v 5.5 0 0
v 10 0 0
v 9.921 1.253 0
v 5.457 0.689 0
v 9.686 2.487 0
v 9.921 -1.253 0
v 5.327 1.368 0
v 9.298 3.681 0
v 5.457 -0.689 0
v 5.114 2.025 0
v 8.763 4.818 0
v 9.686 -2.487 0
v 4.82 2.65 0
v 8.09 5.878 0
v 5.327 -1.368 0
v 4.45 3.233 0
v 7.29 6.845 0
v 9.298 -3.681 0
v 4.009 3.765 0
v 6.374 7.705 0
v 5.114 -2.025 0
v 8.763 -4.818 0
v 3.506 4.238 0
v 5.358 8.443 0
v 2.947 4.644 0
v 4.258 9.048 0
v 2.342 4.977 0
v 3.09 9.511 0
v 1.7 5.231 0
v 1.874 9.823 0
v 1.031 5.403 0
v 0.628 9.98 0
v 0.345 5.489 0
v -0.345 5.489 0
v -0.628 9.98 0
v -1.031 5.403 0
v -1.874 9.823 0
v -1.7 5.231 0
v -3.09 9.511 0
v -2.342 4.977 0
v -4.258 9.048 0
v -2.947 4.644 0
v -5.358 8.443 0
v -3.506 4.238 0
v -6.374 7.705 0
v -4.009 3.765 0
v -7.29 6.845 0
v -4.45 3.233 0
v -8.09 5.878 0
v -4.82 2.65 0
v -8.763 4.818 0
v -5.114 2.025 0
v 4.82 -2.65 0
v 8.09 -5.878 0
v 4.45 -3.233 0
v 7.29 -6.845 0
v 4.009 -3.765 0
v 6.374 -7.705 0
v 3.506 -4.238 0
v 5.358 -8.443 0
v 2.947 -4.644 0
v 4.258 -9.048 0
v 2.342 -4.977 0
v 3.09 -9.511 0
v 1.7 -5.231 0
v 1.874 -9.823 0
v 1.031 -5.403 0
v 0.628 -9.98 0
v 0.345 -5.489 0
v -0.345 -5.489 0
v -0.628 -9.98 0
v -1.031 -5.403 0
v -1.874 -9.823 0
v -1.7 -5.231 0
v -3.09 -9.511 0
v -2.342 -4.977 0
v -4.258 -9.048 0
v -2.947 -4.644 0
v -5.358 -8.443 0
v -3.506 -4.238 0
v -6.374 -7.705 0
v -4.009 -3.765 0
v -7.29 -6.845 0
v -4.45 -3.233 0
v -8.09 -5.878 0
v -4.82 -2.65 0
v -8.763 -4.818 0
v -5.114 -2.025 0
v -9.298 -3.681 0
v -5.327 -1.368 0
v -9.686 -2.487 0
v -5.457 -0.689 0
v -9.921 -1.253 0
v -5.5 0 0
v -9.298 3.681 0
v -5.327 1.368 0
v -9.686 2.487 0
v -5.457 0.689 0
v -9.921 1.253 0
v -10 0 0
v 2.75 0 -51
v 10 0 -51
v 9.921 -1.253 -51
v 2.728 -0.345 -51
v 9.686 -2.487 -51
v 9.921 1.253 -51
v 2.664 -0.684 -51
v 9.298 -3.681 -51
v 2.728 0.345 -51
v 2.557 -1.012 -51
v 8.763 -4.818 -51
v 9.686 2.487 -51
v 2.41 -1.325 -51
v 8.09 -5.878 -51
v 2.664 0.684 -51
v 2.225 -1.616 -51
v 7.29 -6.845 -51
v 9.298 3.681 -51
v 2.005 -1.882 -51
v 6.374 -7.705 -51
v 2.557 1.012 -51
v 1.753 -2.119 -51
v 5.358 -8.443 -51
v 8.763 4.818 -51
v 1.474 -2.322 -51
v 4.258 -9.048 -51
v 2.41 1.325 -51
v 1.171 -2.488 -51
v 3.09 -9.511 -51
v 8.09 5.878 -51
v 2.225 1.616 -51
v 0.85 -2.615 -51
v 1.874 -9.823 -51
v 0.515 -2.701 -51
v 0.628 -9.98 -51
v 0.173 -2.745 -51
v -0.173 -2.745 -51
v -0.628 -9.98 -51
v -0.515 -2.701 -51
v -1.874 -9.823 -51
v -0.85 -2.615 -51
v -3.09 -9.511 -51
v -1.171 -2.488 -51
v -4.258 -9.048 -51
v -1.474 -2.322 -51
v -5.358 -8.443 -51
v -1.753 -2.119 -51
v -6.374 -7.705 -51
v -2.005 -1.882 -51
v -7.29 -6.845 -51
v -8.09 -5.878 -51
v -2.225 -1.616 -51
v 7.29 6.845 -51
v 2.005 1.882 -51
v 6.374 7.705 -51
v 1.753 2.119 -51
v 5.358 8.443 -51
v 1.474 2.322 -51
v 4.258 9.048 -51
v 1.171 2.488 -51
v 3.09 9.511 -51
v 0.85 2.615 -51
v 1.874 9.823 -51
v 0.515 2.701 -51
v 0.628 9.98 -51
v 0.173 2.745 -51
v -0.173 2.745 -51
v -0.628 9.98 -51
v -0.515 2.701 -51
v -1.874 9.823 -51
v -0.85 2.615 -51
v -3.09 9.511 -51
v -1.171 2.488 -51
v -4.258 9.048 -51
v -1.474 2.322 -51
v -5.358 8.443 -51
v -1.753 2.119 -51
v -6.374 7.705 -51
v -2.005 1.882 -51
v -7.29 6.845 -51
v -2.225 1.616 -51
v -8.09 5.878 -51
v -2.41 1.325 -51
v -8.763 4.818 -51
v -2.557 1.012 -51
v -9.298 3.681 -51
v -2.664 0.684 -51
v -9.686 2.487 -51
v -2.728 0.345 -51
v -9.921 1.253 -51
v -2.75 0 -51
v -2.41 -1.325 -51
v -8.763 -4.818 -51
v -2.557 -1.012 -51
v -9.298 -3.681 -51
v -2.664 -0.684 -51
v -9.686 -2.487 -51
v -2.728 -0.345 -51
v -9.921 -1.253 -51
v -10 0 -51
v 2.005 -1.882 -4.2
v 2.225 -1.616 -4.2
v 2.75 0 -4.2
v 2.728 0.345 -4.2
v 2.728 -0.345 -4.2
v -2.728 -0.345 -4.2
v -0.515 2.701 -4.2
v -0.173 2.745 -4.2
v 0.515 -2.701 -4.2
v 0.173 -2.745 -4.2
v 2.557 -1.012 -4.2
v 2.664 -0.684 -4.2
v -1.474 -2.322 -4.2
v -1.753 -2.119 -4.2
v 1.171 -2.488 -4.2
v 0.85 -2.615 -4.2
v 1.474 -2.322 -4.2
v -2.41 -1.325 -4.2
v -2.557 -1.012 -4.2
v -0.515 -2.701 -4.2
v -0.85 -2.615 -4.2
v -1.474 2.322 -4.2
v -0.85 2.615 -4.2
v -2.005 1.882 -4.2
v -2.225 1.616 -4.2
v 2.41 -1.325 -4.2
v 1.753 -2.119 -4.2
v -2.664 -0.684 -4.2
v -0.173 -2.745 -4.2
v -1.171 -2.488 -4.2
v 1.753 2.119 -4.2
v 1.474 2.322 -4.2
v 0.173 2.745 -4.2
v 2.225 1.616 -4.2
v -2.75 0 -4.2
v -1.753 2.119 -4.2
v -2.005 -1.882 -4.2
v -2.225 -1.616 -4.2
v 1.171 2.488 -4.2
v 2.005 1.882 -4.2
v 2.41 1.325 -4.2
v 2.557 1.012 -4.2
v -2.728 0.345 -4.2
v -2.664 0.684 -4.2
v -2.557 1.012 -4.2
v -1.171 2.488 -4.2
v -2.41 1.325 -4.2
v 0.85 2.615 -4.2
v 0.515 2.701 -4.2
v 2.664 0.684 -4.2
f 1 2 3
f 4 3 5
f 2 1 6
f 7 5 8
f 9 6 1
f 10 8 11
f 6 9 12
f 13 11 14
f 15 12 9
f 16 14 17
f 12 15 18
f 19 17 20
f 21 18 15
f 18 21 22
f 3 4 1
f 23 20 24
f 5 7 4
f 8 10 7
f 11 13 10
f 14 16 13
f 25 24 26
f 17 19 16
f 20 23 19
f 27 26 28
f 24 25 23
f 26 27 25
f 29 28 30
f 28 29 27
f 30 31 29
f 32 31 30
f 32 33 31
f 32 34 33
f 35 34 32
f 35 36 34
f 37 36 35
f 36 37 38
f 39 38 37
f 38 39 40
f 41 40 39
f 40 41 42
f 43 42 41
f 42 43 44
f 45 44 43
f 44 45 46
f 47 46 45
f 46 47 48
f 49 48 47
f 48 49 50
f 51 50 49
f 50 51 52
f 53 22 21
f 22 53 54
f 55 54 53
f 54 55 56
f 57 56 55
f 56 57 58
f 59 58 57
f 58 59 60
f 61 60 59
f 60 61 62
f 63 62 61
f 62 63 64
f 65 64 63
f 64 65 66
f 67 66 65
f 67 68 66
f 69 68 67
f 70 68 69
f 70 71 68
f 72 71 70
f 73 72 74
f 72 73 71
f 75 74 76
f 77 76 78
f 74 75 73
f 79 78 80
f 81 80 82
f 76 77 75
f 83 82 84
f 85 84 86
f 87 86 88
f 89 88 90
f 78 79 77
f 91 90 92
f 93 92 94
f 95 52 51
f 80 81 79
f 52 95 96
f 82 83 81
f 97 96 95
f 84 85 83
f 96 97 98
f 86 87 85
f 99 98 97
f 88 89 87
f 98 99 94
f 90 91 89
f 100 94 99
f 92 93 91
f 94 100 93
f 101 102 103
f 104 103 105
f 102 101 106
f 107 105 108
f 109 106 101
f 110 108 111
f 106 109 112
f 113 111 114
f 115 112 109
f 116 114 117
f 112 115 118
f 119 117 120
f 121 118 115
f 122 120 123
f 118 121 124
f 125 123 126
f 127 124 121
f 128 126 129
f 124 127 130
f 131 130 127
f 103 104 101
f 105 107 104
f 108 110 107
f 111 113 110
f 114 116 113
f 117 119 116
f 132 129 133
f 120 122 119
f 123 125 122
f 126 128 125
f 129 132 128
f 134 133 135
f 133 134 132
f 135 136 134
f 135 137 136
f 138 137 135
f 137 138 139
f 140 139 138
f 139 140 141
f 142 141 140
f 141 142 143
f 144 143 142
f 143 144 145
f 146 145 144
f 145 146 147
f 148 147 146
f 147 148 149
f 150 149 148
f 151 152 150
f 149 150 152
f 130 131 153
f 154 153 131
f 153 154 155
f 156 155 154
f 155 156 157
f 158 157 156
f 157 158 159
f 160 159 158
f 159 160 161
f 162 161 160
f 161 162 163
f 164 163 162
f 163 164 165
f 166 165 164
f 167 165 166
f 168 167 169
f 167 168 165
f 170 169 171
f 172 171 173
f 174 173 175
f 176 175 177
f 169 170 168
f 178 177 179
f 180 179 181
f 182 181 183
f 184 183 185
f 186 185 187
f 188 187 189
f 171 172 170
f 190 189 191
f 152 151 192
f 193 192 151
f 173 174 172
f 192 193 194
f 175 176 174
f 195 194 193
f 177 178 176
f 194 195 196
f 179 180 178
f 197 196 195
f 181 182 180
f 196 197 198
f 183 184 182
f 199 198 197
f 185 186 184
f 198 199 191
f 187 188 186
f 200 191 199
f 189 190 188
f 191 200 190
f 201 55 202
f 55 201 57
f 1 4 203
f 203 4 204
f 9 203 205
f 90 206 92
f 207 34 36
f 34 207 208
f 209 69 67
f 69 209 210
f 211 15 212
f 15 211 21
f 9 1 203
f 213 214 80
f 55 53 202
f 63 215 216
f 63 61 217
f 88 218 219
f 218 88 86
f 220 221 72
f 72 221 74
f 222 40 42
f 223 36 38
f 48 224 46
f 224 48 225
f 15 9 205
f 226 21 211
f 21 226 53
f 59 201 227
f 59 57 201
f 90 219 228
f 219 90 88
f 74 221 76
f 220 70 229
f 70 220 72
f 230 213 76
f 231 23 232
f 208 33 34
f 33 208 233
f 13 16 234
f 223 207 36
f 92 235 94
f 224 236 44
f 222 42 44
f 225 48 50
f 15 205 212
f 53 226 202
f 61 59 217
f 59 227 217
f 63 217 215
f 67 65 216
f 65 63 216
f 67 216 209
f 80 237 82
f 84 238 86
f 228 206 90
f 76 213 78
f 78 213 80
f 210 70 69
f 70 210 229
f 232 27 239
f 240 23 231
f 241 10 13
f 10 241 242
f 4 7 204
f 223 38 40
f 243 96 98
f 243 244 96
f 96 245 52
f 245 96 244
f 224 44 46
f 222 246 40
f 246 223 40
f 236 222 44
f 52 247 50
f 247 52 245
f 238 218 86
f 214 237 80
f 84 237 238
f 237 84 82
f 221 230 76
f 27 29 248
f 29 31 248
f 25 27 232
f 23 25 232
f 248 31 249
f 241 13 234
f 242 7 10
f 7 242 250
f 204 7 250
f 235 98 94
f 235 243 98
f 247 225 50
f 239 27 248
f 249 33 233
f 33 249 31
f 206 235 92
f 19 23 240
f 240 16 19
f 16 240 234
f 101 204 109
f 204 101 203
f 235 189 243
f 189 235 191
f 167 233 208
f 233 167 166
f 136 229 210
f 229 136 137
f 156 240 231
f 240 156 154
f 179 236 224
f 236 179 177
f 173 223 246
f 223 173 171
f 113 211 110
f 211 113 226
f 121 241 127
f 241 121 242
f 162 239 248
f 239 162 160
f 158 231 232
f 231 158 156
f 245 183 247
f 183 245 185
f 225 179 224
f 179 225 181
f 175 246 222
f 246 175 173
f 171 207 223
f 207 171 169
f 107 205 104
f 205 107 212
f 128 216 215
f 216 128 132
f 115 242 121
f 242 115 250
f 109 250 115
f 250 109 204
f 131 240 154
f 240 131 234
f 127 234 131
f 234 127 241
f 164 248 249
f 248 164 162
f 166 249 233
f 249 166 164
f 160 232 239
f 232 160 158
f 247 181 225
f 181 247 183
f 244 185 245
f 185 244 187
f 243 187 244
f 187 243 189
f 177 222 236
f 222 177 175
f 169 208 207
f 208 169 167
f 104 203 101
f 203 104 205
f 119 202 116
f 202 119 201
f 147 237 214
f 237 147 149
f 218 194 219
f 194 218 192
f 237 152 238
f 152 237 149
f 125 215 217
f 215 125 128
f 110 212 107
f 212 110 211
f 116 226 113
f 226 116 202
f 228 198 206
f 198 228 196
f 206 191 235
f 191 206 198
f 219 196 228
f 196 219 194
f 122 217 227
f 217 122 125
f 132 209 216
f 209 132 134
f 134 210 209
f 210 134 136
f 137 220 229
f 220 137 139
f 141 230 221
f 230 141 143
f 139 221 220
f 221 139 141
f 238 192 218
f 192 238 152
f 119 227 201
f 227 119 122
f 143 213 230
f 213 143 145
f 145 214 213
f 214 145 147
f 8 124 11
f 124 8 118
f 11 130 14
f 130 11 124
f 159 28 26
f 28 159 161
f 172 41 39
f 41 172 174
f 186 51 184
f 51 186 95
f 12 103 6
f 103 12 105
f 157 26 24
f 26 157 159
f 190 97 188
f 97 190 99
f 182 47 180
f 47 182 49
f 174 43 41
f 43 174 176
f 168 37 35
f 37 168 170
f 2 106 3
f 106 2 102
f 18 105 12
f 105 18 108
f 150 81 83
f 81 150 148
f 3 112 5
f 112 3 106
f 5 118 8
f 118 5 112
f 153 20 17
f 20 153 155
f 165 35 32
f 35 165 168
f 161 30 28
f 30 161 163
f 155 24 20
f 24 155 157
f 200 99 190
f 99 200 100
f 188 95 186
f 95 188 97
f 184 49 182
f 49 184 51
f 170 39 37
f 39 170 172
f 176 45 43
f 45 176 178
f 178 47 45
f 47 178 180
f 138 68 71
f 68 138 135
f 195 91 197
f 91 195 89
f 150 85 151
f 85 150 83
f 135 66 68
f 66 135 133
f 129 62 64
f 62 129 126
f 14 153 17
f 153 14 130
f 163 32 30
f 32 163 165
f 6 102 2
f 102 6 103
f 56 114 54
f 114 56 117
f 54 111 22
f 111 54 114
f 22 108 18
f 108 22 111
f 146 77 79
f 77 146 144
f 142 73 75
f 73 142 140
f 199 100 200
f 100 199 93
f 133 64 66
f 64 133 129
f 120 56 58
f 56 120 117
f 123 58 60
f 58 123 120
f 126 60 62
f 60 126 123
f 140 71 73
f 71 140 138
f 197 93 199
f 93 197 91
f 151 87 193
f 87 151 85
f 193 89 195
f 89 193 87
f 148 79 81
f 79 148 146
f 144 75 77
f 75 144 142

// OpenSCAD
$fn = 50;


difference() {
	union() {
		translate(v = [0, 0, -51.0000000000]) {
			cylinder(h = 51, r = 10.0000000000);
		}
		cylinder(h = 0, r = 13.0000000000);
	}
	union() {
		translate(v = [0, 0, 0]) {
			rotate(a = [0, 0, 0]) {
				difference() {
					union() {
						#translate(v = [0, 0, -51.0000000000]) {
							cylinder(h = 51, r = 2.2500000000);
						}
						#translate(v = [0, 0, -4.2000000000]) {
							cylinder(h = 4.2000000000, r = 10.0000000000, r1 = 2.7500000000, r2 = 5.5000000000);
						}
						#translate(v = [0, 0, -51.0000000000]) {
							cylinder(h = 51, r = 2.7500000000);
						}
						#translate(v = [0, 0, -51.0000000000]) {
							cylinder(h = 51, r = 2.2500000000);
						}
					}
					union();
				}
			}
		}
	}
}
